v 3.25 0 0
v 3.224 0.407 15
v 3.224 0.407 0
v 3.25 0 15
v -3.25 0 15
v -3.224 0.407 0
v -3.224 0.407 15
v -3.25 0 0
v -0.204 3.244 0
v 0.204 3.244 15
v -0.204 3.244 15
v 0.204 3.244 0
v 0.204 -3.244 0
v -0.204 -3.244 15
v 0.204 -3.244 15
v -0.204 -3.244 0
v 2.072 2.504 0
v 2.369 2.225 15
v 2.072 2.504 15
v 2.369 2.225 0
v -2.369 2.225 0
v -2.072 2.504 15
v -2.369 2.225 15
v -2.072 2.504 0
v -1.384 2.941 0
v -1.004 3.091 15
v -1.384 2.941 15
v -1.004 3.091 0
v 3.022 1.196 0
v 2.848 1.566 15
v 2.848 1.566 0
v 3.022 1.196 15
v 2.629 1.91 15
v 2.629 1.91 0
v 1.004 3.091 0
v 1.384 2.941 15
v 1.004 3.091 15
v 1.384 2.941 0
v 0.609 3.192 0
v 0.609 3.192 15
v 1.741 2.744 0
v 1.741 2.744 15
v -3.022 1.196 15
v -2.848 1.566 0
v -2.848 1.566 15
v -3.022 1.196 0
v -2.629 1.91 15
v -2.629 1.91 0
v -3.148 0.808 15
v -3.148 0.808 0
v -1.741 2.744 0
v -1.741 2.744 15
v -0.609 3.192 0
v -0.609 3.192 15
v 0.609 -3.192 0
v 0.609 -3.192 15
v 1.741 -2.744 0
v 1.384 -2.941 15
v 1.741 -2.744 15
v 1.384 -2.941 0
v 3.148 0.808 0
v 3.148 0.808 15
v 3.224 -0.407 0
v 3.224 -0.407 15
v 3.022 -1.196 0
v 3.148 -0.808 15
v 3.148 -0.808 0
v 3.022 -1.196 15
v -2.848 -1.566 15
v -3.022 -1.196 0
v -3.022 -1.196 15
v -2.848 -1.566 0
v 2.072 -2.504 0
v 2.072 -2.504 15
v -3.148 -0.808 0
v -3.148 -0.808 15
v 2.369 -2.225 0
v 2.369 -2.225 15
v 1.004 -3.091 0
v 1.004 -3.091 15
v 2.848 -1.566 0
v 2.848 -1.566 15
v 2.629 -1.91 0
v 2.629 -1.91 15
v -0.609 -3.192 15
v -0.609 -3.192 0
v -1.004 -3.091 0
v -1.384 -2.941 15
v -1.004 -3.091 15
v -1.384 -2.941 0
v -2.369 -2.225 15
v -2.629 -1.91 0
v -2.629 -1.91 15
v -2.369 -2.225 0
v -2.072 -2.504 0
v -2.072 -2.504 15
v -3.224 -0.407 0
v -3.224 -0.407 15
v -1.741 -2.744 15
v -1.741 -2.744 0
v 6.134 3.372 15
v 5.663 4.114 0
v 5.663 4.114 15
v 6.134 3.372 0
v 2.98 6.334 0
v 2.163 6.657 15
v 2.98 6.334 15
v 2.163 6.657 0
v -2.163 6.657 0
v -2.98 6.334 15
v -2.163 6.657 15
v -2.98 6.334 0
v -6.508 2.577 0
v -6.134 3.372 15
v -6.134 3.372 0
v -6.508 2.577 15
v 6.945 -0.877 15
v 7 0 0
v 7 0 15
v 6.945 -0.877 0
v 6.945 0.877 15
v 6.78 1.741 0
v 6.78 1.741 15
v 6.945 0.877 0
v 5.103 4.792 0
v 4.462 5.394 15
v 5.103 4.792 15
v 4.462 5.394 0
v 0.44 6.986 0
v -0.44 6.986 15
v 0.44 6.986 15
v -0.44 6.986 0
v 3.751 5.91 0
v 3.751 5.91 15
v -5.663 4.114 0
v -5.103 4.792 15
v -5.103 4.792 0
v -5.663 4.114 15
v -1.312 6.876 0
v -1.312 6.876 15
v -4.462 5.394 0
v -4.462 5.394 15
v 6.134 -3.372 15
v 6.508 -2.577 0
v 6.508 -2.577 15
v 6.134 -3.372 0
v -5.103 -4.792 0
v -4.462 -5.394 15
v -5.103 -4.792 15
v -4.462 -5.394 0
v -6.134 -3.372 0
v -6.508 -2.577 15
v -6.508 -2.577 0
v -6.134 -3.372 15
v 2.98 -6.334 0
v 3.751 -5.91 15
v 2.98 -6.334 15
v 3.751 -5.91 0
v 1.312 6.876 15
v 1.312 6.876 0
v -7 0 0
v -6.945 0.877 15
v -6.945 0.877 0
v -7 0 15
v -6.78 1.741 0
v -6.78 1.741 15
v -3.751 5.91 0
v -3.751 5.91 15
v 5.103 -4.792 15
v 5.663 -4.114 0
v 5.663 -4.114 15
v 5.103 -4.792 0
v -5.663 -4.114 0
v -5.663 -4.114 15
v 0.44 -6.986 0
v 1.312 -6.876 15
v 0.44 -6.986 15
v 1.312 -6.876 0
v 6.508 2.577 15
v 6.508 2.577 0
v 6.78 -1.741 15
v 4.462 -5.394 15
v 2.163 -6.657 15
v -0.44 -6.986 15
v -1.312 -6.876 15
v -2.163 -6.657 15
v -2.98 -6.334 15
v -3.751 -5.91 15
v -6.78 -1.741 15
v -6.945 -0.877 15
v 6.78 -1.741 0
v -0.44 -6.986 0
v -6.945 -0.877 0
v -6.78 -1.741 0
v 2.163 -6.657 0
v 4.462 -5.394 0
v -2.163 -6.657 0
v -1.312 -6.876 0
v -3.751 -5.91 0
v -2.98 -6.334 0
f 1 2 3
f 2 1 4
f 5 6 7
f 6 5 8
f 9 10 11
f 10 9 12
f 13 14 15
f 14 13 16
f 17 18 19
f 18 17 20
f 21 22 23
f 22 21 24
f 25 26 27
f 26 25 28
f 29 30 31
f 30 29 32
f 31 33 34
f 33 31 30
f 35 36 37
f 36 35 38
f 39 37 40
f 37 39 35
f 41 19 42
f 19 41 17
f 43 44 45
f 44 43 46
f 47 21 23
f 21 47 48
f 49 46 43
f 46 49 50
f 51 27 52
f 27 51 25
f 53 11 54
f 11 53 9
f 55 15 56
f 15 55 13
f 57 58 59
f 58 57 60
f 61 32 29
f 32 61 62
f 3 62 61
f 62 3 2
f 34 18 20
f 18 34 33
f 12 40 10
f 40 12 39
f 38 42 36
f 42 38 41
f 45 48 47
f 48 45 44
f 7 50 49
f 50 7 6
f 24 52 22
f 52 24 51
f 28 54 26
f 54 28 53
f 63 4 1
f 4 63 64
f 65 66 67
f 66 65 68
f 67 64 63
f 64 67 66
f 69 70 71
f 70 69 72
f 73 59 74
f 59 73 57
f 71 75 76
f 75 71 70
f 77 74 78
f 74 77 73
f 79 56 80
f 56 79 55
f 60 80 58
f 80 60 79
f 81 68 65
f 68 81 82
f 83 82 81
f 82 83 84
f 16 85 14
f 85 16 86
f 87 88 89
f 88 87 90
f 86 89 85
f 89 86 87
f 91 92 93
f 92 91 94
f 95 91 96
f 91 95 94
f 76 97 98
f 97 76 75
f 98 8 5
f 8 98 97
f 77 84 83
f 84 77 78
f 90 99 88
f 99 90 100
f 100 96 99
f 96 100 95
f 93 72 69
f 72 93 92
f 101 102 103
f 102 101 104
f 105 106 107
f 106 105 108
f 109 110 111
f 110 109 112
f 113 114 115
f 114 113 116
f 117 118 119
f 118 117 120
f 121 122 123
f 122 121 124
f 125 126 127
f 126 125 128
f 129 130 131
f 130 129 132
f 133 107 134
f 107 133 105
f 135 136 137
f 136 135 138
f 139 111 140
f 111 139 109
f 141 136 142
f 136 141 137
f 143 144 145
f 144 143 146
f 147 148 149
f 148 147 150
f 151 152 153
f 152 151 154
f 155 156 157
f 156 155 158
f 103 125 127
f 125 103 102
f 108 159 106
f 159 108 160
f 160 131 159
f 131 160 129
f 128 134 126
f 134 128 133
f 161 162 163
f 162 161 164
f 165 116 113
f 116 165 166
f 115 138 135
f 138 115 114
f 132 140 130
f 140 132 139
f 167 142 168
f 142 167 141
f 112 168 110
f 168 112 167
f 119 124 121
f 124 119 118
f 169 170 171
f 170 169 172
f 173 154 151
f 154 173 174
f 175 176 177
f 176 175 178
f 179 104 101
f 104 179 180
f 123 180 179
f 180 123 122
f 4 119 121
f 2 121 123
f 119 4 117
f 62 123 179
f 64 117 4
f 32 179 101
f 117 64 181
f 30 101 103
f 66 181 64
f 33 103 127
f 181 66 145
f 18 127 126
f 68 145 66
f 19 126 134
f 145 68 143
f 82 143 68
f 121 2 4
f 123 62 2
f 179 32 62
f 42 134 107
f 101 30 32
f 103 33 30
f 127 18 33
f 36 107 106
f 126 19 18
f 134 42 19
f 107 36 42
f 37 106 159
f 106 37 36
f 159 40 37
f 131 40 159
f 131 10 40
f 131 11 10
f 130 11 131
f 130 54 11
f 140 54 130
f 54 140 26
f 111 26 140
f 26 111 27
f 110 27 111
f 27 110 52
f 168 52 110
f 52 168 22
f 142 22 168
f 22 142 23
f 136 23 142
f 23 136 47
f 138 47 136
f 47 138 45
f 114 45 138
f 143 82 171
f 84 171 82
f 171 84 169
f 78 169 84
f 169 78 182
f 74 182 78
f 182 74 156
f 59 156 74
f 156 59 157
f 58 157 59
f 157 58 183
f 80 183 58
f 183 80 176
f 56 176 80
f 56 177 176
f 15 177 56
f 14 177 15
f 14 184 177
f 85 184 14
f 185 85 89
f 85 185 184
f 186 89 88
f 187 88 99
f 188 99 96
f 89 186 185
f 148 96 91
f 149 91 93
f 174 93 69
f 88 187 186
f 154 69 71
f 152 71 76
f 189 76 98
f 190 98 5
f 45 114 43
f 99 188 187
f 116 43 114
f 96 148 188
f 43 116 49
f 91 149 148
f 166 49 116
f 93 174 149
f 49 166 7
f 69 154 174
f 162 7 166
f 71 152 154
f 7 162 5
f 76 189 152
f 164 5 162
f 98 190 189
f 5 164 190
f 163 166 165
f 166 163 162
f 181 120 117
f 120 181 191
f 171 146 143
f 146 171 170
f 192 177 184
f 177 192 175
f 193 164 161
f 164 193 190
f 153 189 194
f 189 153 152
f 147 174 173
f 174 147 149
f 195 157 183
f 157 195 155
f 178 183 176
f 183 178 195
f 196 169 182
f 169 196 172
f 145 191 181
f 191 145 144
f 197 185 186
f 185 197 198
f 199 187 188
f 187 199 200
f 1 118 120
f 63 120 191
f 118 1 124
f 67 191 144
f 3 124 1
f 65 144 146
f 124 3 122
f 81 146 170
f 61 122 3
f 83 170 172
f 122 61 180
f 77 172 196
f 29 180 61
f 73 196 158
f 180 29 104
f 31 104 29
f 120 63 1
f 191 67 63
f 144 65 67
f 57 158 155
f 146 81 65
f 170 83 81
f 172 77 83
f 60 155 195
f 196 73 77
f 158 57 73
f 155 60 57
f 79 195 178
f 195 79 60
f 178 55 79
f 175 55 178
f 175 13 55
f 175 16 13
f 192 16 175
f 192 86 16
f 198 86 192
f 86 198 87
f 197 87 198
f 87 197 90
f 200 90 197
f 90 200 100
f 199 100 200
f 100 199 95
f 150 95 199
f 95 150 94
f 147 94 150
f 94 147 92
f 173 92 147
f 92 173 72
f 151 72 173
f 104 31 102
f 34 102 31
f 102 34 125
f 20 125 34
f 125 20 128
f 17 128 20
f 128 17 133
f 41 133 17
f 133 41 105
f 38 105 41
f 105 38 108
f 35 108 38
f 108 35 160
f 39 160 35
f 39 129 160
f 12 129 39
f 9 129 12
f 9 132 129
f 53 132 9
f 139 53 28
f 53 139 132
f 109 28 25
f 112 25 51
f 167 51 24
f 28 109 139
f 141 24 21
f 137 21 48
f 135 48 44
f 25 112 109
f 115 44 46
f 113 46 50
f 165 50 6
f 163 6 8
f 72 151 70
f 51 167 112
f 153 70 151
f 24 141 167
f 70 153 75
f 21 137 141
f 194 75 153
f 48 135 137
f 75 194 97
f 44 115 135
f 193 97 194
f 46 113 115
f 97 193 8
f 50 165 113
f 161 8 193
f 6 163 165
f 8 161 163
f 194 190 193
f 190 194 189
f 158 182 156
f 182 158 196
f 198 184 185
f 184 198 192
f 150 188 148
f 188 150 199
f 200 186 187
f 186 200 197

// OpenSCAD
$fn = 50;


difference() {
	union() {
		translate(v = [0, 0, 0]) {
			rotate(a = [0, 0, 0]) {
				cylinder(h = 15, r = 7.0000000000);
			}
		}
	}
	union() {
		translate(v = [0.0000000000, 0.0000000000, 0]) {
			rotate(a = [0, 0, 0]) {
				translate(v = [0, 0, -50]) {
					rotate(a = [0, 0, 0]) {
						cylinder(h = 100, r = 3.2500000000);
					}
				}
			}
		}
		translate(v = [0.0000000000, 0.0000000000, 0]) {
			rotate(a = [0, 0, 0]) {
				translate(v = [0, 0, -50]) {
					rotate(a = [0, 0, 0]) {
						cylinder(h = 100, r = 1.8000000000);
					}
				}
			}
		}
	}
}
